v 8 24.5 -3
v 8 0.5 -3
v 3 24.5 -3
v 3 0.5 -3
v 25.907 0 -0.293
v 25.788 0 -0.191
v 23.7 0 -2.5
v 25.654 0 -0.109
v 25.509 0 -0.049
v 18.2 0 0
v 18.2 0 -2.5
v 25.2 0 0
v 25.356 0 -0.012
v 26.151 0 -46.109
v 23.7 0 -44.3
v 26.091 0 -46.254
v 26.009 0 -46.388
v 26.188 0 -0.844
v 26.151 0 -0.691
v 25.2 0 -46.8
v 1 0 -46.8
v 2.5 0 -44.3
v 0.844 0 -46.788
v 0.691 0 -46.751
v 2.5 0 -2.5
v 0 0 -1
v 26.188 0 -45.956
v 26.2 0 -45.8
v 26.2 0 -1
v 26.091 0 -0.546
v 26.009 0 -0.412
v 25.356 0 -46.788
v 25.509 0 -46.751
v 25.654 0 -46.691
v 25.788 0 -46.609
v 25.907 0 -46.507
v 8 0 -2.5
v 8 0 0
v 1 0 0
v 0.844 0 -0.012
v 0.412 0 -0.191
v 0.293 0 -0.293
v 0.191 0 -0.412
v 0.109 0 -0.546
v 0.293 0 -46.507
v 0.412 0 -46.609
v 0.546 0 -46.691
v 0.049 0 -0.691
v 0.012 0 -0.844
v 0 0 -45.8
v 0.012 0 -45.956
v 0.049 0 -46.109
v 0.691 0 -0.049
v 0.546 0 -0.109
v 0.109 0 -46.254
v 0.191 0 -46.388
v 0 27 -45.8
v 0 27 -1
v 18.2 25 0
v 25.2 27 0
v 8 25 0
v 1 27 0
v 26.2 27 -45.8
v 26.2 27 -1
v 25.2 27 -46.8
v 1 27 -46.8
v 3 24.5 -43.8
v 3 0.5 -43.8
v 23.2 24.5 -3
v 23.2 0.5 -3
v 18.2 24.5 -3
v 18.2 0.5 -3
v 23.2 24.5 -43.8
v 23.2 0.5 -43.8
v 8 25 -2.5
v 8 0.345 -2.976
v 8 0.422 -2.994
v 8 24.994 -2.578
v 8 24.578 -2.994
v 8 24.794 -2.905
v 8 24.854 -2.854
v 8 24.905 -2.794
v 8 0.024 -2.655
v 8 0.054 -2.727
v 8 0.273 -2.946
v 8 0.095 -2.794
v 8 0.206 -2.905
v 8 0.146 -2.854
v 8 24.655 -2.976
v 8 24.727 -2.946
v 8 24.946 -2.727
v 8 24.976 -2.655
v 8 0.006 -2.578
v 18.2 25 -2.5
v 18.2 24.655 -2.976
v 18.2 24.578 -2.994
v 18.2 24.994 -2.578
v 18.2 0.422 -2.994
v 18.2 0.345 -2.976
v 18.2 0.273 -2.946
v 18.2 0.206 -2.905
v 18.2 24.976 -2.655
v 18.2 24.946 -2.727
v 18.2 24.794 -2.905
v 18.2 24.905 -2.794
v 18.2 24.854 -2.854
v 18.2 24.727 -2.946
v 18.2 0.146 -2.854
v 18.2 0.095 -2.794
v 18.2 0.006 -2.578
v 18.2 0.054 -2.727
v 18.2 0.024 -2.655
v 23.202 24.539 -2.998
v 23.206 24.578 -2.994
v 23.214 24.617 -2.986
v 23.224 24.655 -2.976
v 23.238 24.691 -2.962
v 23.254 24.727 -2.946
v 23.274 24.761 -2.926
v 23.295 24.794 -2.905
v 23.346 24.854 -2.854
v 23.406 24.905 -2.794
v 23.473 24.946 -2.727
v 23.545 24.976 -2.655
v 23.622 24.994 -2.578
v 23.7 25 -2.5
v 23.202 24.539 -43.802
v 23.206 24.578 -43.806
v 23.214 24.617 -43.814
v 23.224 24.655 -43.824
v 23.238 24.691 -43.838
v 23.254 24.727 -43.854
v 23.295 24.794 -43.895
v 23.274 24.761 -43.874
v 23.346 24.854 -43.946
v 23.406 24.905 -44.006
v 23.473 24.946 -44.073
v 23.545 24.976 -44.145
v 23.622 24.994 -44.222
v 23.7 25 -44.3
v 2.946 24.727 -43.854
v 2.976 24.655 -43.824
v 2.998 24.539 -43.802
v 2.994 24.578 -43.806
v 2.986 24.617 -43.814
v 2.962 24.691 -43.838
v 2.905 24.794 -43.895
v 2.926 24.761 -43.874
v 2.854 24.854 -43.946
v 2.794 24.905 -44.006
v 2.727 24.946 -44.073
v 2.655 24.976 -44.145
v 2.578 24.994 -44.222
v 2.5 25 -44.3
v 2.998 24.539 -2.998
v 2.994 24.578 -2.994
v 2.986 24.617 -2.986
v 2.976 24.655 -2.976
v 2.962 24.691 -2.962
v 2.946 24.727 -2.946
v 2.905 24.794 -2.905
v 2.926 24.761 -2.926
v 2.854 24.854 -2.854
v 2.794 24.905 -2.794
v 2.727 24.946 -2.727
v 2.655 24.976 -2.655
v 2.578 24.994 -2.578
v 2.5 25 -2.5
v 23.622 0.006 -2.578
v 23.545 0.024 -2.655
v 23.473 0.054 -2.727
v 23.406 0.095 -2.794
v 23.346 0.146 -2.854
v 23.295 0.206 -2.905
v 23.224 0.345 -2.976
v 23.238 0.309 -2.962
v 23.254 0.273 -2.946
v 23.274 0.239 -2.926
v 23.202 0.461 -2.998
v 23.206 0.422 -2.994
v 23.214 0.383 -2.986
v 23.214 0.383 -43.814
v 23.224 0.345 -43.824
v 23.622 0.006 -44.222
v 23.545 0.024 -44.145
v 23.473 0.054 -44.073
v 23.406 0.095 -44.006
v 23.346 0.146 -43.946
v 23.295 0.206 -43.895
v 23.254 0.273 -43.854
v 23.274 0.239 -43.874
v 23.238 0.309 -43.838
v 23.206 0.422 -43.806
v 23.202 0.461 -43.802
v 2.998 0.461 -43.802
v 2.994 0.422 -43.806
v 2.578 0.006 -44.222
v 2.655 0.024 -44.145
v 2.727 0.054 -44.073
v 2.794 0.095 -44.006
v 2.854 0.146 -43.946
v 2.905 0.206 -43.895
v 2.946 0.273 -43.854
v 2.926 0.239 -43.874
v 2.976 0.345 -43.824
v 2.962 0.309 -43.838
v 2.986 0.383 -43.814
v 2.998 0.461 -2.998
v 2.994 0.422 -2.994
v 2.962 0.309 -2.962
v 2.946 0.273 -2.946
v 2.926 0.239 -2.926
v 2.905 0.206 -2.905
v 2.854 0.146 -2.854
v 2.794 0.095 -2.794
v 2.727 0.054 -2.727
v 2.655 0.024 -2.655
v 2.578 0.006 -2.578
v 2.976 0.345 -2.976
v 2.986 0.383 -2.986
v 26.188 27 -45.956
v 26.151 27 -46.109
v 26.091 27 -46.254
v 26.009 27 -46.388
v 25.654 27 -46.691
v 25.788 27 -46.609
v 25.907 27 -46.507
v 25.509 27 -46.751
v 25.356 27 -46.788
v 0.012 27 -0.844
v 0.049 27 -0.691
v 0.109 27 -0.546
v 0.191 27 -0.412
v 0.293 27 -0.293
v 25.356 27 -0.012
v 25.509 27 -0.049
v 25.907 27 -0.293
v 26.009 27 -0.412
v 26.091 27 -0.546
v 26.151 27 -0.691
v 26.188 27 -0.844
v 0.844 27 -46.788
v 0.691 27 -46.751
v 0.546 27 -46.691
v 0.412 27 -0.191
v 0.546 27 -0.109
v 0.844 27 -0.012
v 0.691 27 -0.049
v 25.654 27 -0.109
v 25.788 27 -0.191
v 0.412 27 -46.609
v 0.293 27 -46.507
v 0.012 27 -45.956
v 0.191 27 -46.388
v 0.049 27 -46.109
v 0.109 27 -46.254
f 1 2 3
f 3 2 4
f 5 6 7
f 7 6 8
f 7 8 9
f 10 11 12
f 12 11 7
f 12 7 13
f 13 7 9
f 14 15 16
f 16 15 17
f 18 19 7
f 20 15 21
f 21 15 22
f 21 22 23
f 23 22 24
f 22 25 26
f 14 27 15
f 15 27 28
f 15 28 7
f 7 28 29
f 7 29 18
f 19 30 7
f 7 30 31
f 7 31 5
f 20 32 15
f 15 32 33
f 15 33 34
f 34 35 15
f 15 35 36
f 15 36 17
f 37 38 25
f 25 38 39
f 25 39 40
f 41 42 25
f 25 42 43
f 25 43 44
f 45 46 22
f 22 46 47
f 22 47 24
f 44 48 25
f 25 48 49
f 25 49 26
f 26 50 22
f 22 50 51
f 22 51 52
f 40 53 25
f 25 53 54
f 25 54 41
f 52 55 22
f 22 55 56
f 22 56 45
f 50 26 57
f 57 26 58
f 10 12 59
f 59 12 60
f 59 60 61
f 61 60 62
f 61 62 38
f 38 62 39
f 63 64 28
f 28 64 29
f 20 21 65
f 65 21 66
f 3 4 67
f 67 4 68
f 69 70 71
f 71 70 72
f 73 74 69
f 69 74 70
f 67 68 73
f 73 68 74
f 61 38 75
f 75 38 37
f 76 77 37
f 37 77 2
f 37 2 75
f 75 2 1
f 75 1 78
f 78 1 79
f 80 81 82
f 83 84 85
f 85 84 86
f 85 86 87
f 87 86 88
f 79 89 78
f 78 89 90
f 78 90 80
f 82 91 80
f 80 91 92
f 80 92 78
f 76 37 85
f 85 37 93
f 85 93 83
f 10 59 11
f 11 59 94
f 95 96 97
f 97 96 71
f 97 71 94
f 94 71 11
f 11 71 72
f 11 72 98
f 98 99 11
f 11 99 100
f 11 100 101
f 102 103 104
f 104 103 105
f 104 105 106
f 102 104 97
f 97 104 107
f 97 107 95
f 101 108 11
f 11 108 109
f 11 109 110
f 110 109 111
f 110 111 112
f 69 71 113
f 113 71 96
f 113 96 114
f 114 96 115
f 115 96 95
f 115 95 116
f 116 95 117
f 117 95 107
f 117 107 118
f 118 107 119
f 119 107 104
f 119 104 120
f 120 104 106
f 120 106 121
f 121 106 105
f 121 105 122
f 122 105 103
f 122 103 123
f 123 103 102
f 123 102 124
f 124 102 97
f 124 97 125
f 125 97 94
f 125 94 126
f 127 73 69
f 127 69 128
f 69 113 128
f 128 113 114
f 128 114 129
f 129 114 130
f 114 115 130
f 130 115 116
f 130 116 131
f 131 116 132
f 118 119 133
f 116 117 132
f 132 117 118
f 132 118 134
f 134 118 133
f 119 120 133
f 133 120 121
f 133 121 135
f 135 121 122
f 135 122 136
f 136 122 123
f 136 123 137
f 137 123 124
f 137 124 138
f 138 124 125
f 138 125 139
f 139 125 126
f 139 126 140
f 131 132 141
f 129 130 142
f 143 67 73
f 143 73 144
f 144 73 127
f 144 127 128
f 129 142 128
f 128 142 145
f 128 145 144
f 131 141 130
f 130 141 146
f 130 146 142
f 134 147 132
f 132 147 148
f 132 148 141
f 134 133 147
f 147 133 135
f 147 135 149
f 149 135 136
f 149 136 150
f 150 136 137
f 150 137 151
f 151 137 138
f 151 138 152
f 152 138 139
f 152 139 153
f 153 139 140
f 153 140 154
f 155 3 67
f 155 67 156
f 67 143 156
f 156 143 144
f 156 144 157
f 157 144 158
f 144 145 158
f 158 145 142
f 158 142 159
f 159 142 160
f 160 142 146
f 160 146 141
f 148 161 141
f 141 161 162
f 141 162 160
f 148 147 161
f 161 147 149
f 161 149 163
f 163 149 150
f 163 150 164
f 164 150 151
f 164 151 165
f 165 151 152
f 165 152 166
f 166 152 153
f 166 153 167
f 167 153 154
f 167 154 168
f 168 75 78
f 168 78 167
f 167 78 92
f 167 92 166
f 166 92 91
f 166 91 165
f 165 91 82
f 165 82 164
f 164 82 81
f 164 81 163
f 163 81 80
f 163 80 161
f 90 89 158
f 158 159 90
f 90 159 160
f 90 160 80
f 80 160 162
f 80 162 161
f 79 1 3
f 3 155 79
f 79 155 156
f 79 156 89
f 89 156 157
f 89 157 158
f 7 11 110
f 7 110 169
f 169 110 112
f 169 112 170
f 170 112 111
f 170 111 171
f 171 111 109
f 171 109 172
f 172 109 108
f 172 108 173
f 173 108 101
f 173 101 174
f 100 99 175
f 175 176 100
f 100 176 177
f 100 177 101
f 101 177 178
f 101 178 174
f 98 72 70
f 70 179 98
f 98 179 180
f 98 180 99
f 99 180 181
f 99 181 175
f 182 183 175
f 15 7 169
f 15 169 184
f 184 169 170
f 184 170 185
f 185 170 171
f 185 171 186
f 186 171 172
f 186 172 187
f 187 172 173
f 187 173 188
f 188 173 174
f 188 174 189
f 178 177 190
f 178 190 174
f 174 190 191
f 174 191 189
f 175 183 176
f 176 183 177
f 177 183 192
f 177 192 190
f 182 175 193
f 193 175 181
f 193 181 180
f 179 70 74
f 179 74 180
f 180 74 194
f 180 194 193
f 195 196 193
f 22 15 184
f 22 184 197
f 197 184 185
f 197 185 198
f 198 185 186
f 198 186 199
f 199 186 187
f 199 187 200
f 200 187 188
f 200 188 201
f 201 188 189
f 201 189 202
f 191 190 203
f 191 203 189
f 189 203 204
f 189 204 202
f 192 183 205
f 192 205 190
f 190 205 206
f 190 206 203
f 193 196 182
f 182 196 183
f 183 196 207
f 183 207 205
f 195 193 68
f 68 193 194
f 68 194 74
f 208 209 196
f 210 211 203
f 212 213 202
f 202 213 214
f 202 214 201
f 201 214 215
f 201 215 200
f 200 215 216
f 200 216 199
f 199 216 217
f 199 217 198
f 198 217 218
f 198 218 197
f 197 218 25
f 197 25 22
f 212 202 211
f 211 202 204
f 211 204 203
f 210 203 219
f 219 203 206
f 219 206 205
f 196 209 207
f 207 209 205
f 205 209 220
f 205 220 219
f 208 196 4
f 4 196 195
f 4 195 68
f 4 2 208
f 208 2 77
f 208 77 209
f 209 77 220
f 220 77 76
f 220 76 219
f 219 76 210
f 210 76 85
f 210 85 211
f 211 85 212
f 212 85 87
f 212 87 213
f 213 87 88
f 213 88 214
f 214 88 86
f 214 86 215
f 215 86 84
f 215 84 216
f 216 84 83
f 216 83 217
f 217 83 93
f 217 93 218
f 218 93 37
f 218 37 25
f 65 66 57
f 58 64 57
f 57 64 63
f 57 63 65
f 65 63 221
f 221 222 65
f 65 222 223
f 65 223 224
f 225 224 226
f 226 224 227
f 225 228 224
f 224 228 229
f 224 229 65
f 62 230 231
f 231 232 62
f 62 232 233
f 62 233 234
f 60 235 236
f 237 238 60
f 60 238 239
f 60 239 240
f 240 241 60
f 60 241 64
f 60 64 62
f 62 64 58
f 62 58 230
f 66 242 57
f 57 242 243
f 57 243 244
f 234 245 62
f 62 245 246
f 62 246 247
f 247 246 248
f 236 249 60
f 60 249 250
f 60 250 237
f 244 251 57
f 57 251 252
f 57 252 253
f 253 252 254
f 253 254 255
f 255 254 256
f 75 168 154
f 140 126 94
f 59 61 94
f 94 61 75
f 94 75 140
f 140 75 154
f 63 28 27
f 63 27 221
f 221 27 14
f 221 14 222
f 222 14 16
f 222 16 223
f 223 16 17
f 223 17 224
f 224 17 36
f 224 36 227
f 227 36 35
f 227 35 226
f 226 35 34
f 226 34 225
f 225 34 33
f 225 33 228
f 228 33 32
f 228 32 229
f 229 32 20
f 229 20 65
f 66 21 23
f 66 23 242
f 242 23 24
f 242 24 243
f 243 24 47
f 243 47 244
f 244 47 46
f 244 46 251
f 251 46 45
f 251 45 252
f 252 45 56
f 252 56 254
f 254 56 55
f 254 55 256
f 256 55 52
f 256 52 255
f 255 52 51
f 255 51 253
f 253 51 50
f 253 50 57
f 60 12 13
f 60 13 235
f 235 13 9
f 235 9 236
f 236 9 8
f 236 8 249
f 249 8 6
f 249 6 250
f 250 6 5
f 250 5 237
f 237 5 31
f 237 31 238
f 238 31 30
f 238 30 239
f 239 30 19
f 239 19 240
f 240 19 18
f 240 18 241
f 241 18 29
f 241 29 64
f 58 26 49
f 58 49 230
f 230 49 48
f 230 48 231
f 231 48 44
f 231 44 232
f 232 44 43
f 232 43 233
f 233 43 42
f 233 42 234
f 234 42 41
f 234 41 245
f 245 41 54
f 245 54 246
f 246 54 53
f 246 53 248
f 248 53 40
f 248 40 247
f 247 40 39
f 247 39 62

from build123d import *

# Parameters (mm, degrees)
SKETCH1_W           = 26.2
SKETCH1_H           = 46.8
SKETCH1_W_2         = 20.2
SKETCH1_H_2         = 40.8
BOSS_EXTRUDE1_DEPTH = 25
SKETCH3_W           = 10.2
SKETCH3_H           = 25
CUT_EXTRUDE1_DEPTH  = 10
FILLET1_R           = 0.5
SKETCH4_W           = 26.2
SKETCH4_H           = 46.8
BOSS_EXTRUDE2_DEPTH = 2
FILLET2_R           = 1


with BuildPart() as part:
    # Sketch1 → Boss-Extrude1 (new body)
    with BuildSketch(Plane(origin=(0, 0, 0), x_dir=(1, 0, 0), z_dir=(0, 1, 0))):
        with Locations((13.1, 23.4)):
            Rectangle(SKETCH1_W, SKETCH1_H)
        with Locations((13.1, 23.4)):
            Rectangle(SKETCH1_W_2, SKETCH1_H_2, mode=Mode.SUBTRACT)
    extrude(amount=BOSS_EXTRUDE1_DEPTH)

    # Sketch3 → Cut-Extrude1 (cut)
    with BuildSketch(Plane.XY):
        with Locations((13.1, 12.5)):
            Rectangle(SKETCH3_W, SKETCH3_H)
    extrude(amount=-CUT_EXTRUDE1_DEPTH, mode=Mode.SUBTRACT)

    # Fillet1
    fillet1_edges = [part.edges().sort_by_distance(p)[0] for p in [
        (3, 0, -23.4),
        (5.5, 0, -3),
        (23.2, 0, -23.4),
        (13.1, 0, -43.8),
        (3, 25, -23.4),
        (5.5, 25, -3),
        (23.2, 25, -23.4),
        (13.1, 25, -43.8),
        (20.7, 0, -3),
        (20.7, 25, -3),
    ]]
    fillet(fillet1_edges, radius=FILLET1_R)

    # Sketch4 → Boss-Extrude2 (add)
    with BuildSketch(Plane(origin=(0, 25, 0), x_dir=(1, 0, 0), z_dir=(0, 1, 0))):
        with Locations((13.1, 23.4)):
            Rectangle(SKETCH4_W, SKETCH4_H)
    extrude(amount=BOSS_EXTRUDE2_DEPTH)

    # Fillet2
    fillet2_edges = [part.edges().sort_by_distance(p)[0] for p in [
        (0, 13.5, -46.8),
        (26.2, 13.5, -46.8),
        (26.2, 13.5, 0),
        (0, 13.5, 0),
    ]]
    fillet(fillet2_edges, radius=FILLET2_R)


solid = part.part
